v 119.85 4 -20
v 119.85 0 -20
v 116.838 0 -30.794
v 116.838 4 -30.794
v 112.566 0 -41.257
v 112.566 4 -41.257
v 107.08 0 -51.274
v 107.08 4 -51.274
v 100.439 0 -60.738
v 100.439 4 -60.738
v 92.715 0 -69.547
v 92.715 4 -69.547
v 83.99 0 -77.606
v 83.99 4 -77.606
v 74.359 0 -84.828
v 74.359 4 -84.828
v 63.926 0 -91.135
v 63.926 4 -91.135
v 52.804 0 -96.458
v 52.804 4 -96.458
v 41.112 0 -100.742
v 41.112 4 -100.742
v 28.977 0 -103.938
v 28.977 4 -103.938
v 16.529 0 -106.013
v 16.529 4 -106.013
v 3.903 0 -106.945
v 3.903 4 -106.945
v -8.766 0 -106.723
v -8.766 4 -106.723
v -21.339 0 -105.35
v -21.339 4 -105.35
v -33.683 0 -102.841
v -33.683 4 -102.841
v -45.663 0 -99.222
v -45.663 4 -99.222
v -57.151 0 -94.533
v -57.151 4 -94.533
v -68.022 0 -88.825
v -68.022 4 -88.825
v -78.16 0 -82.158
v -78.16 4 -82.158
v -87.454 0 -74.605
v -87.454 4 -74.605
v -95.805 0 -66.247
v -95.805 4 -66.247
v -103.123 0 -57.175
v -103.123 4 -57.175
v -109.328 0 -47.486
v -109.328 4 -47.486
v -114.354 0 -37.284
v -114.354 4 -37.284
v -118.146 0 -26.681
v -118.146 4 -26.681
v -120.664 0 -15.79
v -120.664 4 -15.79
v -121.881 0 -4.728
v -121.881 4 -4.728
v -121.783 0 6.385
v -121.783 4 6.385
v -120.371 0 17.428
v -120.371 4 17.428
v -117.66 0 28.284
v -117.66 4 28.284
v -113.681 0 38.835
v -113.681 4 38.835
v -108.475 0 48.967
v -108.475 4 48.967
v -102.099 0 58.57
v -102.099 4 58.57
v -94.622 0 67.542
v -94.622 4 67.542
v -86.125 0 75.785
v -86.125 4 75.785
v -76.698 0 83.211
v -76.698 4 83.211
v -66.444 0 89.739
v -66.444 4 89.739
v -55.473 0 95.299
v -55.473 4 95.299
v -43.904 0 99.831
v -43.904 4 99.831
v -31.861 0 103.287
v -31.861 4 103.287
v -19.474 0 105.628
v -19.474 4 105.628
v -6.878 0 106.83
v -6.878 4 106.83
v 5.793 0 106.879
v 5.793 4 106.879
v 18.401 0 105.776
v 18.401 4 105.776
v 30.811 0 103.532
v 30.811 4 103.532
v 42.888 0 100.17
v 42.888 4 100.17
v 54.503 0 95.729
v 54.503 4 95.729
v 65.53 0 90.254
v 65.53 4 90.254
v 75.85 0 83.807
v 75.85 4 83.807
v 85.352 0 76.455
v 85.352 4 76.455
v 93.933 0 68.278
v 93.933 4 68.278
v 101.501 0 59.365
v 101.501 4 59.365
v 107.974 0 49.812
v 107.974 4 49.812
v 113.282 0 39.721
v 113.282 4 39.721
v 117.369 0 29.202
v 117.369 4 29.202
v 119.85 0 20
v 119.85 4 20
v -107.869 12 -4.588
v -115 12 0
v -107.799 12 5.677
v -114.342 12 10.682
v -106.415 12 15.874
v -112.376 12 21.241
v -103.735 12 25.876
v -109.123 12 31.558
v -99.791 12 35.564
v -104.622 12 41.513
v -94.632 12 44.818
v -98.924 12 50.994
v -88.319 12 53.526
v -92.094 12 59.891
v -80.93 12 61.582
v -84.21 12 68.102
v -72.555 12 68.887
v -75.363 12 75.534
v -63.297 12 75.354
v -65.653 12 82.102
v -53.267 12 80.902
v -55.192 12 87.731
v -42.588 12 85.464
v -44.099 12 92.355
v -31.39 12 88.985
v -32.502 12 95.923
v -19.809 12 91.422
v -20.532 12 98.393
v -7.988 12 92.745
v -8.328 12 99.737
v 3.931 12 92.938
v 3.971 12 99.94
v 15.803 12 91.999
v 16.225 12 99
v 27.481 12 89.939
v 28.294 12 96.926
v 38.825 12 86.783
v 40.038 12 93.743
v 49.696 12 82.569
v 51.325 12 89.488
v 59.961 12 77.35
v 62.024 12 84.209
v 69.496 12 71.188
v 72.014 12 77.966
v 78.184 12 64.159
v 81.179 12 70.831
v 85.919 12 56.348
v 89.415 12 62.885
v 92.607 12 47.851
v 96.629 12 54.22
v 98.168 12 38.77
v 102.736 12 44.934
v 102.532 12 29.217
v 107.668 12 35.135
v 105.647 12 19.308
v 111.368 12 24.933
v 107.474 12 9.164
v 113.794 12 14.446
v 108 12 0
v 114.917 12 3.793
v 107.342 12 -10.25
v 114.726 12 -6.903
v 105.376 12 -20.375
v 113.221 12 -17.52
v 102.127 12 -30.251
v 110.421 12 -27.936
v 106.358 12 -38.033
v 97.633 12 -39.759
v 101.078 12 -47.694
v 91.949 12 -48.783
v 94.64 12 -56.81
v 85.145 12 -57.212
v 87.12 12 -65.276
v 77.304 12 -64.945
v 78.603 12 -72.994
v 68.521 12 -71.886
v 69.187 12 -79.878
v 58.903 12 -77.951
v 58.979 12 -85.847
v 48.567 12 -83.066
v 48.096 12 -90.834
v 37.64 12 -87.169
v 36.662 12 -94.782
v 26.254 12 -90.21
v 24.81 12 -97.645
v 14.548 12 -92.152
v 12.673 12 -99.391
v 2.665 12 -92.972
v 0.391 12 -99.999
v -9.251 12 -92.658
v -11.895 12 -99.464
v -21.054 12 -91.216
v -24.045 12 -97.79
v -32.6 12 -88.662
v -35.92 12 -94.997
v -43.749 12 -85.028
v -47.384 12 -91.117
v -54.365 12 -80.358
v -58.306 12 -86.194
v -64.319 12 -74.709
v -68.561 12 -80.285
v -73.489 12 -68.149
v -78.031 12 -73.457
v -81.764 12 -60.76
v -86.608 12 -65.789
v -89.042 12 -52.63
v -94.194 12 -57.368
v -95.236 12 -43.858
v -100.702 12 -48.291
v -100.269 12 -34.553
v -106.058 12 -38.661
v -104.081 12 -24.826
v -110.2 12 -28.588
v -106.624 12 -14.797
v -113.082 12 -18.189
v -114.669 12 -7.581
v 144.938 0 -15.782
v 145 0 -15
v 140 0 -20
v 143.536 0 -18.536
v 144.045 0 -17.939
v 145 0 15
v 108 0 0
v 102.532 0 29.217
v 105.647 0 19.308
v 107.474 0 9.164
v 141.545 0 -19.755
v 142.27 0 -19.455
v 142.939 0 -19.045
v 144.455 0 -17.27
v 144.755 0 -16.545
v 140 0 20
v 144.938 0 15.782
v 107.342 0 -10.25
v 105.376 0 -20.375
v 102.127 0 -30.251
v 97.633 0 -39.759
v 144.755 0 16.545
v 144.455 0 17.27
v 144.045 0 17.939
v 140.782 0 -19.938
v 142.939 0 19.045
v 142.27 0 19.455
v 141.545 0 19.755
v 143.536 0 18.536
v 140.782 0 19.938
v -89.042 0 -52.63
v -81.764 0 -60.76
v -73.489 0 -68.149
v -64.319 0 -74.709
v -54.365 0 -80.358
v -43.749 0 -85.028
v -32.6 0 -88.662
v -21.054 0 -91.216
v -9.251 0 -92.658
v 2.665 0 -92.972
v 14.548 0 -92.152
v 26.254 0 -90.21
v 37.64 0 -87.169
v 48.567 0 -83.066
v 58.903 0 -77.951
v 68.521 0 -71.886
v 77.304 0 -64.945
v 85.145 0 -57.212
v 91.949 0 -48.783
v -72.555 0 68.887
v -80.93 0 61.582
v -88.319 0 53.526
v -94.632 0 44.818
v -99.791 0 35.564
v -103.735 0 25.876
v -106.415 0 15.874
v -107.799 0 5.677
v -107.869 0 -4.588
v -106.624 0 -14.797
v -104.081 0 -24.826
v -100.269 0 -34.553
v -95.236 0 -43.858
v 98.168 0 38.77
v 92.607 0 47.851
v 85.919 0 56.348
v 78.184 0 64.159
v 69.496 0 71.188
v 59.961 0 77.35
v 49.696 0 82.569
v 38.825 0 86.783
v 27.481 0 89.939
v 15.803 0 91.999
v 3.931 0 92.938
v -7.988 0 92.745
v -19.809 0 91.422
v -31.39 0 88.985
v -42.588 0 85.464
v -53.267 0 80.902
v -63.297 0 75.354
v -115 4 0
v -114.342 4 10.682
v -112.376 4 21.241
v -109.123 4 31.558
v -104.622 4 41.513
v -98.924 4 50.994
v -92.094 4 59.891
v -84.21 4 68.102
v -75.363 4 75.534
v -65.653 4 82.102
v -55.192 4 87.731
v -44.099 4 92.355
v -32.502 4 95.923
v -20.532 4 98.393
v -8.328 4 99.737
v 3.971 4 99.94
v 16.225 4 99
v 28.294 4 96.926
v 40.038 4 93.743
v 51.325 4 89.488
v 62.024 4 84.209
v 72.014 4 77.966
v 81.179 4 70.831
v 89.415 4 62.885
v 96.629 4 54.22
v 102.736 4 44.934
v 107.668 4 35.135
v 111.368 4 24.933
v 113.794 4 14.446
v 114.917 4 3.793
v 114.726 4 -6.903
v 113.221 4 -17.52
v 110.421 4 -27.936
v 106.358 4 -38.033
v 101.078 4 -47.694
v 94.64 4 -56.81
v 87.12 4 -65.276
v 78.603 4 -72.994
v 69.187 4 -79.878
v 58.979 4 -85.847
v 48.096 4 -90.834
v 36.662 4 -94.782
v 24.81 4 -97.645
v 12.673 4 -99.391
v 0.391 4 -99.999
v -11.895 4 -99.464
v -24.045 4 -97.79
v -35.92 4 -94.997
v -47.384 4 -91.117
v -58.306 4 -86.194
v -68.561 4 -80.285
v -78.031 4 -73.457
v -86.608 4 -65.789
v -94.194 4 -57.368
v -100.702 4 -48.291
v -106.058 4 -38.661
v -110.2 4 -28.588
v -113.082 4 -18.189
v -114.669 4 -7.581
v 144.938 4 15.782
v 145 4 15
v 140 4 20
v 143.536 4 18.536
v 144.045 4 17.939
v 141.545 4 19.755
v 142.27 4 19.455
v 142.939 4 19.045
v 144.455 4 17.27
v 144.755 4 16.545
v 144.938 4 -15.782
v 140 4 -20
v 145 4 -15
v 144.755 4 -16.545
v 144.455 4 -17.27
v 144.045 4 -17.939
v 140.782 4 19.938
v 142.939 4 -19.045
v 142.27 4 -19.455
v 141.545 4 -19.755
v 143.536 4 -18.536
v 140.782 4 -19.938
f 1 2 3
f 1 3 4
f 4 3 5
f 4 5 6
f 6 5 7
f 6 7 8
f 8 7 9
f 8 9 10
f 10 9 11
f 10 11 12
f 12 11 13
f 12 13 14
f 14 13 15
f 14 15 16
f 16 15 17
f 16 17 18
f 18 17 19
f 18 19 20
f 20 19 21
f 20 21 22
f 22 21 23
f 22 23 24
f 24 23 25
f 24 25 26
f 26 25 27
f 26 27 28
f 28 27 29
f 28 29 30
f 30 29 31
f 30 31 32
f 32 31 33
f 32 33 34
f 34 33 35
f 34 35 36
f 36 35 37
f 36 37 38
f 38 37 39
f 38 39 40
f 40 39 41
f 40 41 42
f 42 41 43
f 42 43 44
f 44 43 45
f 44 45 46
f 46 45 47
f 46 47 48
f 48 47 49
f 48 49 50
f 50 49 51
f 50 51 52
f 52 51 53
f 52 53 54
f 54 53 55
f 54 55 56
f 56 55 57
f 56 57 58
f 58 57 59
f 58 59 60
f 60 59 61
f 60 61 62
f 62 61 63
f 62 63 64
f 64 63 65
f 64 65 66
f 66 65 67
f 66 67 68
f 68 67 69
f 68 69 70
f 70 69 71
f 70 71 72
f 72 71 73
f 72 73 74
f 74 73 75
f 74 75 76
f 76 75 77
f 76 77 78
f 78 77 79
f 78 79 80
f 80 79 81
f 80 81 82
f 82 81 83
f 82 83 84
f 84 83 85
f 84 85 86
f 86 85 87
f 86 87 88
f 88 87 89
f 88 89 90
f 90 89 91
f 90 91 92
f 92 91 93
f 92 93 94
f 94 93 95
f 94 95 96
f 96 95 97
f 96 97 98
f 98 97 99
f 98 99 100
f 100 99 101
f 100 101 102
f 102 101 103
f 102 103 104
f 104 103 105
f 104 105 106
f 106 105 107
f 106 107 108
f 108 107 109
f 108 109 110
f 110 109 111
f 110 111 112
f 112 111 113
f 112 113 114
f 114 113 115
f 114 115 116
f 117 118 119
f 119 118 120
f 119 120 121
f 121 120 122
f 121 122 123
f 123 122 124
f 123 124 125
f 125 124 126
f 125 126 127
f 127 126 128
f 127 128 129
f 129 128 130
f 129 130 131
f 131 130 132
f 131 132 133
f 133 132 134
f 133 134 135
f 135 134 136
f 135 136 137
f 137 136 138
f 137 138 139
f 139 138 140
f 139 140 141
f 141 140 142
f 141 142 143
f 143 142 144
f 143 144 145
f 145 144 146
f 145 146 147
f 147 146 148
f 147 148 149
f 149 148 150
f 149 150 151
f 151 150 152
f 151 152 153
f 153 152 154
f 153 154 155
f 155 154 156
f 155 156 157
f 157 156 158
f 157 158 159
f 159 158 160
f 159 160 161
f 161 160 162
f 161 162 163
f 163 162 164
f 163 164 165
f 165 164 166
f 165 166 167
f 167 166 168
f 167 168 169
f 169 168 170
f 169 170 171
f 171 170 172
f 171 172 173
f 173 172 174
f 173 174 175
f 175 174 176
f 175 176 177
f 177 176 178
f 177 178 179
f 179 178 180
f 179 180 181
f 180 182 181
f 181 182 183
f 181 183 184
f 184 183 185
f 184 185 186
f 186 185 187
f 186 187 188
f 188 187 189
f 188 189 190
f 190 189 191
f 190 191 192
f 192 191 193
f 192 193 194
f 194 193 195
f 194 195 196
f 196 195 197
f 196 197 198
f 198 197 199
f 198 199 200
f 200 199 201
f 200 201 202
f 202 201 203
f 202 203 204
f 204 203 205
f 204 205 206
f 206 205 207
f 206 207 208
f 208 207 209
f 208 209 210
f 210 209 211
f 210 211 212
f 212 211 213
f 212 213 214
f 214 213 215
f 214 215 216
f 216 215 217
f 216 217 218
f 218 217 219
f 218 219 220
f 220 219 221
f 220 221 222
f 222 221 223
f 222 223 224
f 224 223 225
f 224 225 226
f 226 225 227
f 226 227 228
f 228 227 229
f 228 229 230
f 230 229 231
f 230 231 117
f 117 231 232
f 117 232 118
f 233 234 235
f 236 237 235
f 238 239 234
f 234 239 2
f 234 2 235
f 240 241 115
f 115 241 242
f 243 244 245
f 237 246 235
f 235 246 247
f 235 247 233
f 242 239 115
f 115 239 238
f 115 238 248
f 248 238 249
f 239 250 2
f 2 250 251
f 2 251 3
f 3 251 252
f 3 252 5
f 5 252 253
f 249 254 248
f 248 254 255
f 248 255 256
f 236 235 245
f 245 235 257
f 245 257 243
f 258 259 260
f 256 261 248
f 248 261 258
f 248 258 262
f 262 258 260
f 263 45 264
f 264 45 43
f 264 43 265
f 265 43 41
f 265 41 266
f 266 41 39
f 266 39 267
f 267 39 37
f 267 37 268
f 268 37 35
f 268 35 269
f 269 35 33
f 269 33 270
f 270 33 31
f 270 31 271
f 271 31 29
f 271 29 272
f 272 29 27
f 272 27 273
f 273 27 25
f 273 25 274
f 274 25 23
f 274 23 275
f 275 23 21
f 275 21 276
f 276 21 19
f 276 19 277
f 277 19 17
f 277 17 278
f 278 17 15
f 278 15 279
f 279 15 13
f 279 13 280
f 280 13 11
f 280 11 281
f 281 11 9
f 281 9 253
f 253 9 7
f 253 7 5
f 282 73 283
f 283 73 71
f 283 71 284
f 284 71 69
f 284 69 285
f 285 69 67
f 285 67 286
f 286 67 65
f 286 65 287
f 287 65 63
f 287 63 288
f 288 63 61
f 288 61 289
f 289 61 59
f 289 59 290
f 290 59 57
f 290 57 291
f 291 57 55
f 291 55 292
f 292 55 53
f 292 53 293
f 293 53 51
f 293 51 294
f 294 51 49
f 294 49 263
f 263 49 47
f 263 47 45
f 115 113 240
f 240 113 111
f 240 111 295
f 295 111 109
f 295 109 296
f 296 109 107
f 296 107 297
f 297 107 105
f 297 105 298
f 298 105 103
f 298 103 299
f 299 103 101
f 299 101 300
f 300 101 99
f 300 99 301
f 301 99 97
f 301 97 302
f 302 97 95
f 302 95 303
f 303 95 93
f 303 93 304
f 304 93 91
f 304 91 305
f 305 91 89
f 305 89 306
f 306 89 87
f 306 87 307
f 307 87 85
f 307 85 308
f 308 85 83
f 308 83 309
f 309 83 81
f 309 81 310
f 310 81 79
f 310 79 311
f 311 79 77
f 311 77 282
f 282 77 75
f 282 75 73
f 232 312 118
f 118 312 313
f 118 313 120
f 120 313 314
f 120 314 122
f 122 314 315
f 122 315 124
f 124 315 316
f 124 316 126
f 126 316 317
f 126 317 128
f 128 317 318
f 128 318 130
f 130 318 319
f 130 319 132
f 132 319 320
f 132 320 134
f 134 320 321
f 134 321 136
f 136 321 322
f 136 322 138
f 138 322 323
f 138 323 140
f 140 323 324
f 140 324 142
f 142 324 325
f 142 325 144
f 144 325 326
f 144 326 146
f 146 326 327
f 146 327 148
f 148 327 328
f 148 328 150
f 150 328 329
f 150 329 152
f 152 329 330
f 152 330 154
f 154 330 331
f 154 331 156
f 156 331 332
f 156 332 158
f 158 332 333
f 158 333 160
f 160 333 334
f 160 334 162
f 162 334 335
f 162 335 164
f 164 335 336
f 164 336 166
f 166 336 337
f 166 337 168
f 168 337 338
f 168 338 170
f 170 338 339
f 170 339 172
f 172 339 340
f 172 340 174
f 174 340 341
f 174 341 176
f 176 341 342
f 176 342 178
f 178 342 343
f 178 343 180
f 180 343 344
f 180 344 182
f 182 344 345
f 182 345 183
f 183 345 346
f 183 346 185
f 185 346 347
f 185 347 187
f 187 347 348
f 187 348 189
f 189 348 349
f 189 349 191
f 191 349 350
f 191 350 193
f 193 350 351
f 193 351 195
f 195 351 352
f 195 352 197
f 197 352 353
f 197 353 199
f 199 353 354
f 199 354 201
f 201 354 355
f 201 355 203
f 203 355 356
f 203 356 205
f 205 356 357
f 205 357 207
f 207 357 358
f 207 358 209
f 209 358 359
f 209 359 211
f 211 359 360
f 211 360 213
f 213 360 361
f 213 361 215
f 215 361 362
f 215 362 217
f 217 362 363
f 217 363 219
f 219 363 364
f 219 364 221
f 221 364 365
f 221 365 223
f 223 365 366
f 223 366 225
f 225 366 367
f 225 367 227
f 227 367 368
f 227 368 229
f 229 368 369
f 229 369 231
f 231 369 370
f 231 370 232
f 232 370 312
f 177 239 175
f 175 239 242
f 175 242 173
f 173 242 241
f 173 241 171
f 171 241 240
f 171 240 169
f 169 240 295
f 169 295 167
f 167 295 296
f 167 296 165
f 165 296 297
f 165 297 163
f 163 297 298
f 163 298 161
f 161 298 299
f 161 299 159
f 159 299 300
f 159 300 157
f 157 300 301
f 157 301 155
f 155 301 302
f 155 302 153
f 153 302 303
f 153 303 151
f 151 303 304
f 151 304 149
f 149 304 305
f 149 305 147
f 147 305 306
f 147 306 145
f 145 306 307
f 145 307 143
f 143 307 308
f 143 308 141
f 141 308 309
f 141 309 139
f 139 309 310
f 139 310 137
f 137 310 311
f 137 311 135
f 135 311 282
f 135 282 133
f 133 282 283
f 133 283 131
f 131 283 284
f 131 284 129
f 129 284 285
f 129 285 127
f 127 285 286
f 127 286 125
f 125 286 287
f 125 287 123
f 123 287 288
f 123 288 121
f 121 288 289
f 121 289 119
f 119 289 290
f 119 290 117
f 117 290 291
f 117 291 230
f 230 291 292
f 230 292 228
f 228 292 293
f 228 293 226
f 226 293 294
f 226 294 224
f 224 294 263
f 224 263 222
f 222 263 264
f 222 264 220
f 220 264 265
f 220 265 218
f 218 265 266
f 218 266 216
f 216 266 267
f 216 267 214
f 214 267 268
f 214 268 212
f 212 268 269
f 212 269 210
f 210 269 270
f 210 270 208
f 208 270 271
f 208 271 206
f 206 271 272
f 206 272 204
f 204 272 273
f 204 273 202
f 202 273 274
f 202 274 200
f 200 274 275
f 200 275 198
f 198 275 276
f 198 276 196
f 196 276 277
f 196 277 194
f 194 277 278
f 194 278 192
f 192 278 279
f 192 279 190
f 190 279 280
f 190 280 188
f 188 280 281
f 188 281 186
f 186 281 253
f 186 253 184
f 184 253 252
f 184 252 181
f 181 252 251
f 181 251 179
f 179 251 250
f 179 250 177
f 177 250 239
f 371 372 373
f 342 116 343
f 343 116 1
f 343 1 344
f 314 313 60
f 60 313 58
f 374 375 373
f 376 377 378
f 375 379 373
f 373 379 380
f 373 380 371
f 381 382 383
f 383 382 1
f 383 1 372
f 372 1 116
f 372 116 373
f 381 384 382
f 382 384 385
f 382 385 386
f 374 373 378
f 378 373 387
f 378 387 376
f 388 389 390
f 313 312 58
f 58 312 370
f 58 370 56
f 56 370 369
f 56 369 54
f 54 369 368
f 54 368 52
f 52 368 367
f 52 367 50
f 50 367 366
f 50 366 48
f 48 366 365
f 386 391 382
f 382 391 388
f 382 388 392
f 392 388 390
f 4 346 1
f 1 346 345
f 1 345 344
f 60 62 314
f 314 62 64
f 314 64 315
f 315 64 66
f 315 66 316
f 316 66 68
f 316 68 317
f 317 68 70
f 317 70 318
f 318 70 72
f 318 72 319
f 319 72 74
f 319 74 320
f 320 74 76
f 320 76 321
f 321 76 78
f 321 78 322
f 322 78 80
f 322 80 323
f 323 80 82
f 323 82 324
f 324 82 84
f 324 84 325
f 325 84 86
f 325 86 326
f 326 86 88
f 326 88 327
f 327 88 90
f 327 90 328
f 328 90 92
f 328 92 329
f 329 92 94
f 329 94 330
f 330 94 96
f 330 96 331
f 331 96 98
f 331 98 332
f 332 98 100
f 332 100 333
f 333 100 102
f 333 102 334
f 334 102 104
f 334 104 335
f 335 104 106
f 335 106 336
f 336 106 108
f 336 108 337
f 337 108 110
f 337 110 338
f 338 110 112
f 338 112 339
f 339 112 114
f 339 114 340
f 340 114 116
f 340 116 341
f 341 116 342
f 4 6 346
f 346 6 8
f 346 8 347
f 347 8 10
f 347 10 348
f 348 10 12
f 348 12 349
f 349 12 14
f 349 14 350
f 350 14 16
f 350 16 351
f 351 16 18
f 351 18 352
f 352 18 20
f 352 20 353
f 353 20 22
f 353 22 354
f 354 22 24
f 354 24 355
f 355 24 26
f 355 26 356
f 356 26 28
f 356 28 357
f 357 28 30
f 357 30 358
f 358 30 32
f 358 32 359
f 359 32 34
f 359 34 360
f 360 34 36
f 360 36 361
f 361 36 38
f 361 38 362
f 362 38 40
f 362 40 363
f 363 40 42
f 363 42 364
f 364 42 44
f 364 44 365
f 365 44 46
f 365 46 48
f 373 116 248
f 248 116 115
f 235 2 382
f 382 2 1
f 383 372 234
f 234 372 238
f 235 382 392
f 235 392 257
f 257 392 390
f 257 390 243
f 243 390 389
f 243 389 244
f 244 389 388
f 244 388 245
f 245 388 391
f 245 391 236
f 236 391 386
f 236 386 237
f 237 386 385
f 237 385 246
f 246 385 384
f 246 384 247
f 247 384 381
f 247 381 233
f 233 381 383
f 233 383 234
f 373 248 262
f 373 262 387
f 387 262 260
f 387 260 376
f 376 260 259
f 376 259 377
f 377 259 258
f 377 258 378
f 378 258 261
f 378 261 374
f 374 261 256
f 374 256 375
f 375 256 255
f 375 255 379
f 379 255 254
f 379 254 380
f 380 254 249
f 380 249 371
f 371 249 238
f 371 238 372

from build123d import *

# Parameters (mm, degrees)
SKETCH1_RX          = 115
SKETCH1_RY          = 100
SKETCH1_RX_2        = 108
SKETCH1_RY_2        = 93
BOSS_EXTRUDE1_DEPTH = 12
SKETCH2_RX          = 122
SKETCH2_RY          = 107
SKETCH2_RX_2        = 108
SKETCH2_RY_2        = 93
BOSS_EXTRUDE2_DEPTH = 4
BOSS_EXTRUDE3_DEPTH = 4
FILLET1_R           = 5


with BuildPart() as part:
    # Sketch1 → Boss-Extrude1 (new body)
    with BuildSketch(Plane(origin=(0, 0, 0), x_dir=(1, 0, 0), z_dir=(0, 1, 0))):
        with Locations(Location((0, 0), (0, 0, 180))):
            Ellipse(SKETCH1_RX, SKETCH1_RY)
        with Locations((0, 0)):
            Ellipse(SKETCH1_RX_2, SKETCH1_RY_2, mode=Mode.SUBTRACT)
    extrude(amount=BOSS_EXTRUDE1_DEPTH)

    # Sketch2 → Boss-Extrude2 (add)
    with BuildSketch(Plane(origin=(0, 0, 0), x_dir=(1, 0, 0), z_dir=(0, 1, 0))):
        with Locations(Location((0, 0), (0, 0, 180))):
            Ellipse(SKETCH2_RX, SKETCH2_RY)
        with Locations(Location((0, 0), (0, 0, 180))):
            Ellipse(SKETCH2_RX_2, SKETCH2_RY_2, mode=Mode.SUBTRACT)
    extrude(amount=BOSS_EXTRUDE2_DEPTH)

    # Sketch3 → Boss-Extrude3 (add)
    with BuildSketch(Plane(origin=(0, 0, 0), x_dir=(1, 0, 0), z_dir=(0, 1, 0))):
        Polygon((115, -20), (145, -20), (145, 20), (115, 20), (115, 0), align=None)
    extrude(amount=BOSS_EXTRUDE3_DEPTH)

    # Fillet1
    fillet1_edges = [part.edges().sort_by_distance(p)[0] for p in [
        (145, 2, -20),
        (145, 2, 20),
    ]]
    fillet(fillet1_edges, radius=FILLET1_R)


solid = part.part
